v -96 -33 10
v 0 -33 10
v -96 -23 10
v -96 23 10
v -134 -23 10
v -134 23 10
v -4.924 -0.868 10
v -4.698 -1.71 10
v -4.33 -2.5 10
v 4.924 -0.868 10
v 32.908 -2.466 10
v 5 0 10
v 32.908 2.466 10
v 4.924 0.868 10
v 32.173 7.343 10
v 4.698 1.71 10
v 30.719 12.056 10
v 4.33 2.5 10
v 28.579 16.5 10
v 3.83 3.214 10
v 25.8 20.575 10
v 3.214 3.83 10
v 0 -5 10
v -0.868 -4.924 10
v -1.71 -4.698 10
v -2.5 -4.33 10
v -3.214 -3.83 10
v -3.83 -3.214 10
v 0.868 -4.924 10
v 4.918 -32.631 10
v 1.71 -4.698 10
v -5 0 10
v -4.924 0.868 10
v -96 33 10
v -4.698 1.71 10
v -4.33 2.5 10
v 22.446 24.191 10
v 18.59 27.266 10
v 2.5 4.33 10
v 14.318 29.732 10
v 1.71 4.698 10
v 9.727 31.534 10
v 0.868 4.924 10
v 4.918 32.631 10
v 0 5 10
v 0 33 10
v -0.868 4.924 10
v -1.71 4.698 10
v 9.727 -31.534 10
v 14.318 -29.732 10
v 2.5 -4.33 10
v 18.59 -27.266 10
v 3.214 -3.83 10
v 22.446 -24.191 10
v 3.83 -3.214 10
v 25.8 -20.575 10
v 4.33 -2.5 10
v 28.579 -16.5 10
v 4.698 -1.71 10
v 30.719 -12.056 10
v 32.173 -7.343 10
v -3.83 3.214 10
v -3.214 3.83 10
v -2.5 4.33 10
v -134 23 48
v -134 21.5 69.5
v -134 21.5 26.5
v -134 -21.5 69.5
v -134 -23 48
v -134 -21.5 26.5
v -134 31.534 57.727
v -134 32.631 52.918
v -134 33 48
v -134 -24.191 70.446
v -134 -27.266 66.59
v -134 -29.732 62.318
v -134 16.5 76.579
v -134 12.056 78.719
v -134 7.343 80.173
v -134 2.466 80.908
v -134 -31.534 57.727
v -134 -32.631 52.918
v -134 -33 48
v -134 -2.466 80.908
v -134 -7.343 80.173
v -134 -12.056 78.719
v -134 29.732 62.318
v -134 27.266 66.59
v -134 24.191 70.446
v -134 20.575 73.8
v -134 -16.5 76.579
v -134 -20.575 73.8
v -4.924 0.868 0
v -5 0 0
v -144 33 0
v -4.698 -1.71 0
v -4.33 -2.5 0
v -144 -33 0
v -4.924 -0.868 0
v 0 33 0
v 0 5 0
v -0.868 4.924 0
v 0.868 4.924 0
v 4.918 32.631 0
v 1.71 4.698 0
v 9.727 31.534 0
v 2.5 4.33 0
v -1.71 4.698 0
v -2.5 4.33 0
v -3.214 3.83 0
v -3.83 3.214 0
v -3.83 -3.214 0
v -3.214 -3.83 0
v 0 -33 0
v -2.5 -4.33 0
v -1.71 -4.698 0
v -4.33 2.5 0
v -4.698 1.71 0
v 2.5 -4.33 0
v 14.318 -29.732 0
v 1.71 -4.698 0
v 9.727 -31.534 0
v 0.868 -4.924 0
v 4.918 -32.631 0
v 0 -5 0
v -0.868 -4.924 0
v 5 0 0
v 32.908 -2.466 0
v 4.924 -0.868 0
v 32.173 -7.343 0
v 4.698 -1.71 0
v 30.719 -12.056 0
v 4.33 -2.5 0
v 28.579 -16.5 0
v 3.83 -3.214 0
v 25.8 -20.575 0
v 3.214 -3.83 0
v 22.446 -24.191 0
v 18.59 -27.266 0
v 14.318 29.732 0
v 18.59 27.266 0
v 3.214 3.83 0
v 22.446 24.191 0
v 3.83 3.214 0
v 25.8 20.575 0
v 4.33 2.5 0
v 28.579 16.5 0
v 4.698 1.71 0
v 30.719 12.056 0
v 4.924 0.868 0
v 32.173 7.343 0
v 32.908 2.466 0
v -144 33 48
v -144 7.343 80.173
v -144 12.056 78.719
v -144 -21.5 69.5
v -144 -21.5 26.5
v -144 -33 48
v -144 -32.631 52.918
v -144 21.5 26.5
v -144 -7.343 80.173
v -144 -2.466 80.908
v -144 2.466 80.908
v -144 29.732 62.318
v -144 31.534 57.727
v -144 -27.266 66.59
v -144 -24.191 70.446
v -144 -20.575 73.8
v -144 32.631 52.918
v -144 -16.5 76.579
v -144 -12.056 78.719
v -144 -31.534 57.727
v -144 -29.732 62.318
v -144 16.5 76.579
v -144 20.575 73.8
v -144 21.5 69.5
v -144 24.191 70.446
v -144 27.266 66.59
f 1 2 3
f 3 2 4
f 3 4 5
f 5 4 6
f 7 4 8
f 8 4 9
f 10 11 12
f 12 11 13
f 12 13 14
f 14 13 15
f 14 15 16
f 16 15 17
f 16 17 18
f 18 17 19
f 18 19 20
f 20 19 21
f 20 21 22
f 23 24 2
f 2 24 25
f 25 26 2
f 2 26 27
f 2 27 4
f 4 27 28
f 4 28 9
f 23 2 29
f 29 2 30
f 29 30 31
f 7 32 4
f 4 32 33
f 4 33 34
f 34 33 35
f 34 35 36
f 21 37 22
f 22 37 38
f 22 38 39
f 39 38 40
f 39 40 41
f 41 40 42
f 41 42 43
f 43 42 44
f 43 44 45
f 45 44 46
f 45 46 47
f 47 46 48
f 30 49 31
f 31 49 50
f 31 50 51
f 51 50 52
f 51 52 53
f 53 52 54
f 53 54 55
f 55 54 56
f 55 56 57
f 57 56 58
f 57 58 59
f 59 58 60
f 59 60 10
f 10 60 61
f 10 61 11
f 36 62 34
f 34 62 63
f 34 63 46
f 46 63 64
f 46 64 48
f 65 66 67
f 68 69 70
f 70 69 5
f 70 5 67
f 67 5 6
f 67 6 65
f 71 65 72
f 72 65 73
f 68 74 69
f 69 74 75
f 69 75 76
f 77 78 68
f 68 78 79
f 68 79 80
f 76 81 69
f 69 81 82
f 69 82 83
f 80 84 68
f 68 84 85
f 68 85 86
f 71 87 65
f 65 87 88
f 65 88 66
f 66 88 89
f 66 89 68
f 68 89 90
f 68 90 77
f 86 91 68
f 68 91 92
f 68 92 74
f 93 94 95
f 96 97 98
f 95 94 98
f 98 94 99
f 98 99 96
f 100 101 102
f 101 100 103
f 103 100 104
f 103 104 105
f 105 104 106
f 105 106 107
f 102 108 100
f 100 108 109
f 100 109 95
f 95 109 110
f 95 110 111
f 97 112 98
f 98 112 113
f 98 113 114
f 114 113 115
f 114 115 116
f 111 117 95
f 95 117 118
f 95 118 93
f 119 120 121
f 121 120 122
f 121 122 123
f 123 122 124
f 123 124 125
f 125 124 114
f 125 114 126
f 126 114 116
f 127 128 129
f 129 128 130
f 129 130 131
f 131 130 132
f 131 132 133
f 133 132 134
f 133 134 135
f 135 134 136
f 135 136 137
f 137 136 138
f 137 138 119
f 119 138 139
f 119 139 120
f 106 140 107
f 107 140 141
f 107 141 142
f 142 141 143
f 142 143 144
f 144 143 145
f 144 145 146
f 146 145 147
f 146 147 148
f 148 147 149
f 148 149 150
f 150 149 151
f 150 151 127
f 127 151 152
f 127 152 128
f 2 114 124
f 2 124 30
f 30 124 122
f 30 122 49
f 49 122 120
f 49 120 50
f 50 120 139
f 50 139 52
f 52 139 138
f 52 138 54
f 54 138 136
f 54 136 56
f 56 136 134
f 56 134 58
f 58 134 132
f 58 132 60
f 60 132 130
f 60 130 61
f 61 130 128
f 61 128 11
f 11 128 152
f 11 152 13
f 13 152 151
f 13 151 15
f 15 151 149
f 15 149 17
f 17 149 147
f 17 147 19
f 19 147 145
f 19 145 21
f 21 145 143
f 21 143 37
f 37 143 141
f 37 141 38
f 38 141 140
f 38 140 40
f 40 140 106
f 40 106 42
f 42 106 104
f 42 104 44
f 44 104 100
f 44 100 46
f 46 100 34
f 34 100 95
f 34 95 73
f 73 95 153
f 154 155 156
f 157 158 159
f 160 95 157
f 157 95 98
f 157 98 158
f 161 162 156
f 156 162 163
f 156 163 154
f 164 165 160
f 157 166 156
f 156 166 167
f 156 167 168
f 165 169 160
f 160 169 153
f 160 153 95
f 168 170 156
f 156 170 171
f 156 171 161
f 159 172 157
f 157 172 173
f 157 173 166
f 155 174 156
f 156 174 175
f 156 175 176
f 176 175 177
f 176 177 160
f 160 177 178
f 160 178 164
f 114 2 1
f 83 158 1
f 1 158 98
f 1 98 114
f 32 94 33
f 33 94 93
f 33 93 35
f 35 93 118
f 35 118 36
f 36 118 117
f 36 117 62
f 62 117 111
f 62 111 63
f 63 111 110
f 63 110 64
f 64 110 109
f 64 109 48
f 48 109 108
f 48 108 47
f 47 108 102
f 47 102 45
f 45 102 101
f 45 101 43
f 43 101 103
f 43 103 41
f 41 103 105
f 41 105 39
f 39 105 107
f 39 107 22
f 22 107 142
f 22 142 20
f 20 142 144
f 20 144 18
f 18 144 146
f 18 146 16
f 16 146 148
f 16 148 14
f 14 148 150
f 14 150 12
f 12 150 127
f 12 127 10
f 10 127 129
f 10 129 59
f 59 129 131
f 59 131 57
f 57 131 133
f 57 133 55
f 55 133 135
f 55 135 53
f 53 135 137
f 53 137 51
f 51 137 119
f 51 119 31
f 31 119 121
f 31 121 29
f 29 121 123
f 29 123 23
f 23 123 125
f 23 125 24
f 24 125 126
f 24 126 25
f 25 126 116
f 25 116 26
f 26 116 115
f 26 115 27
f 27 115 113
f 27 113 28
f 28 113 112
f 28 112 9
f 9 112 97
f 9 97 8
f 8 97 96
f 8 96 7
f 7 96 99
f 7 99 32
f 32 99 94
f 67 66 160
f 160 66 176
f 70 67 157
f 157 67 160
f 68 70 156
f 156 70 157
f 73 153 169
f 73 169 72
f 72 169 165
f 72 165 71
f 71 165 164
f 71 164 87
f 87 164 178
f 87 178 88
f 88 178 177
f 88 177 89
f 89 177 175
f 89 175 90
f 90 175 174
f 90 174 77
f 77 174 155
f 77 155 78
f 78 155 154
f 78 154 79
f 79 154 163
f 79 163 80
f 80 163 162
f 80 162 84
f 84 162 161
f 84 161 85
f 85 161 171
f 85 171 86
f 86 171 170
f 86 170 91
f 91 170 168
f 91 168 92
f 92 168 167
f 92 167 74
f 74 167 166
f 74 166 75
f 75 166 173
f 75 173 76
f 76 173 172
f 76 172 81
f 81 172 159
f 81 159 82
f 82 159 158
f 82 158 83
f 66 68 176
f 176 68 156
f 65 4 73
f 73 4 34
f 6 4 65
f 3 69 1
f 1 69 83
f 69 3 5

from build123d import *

# Parameters (mm, degrees)
SKETCH1_R           = 5
BOSS_EXTRUDE1_DEPTH = 10
SKETCH3_W           = 43
SKETCH3_H           = 43
BOSS_EXTRUDE3_DEPTH = 10
BOSS_EXTRUDE4_DEPTH = 10


with BuildPart() as part:
    # Sketch1 → Boss-Extrude1 (new body)
    with BuildSketch(Plane.XY):
        with BuildLine():
            Line((0, 33), (-144, 33))
            Line((-144, 33), (-144, -33))
            Line((-144, -33), (0, -33))
            ThreePointArc((0, -33), (33, 0), (0, 33))
        make_face()
        Circle(SKETCH1_R, mode=Mode.SUBTRACT)
    extrude(amount=BOSS_EXTRUDE1_DEPTH)

    # Sketch3 → Boss-Extrude3 (add)
    with BuildSketch(Plane.ZY.offset(144)):
        with BuildLine():
            Line((48, 33), (10, 33))
            Line((10, 33), (10, -33))
            Line((10, -33), (48, -33))
            ThreePointArc((48, -33), (81, 0), (48, 33))
        make_face()
        with Locations((48, 0)):
            Rectangle(SKETCH3_W, SKETCH3_H, mode=Mode.SUBTRACT)
    extrude(amount=-BOSS_EXTRUDE3_DEPTH)

    # Sketch4 → Boss-Extrude4 (add)
    with BuildSketch(Plane(origin=(0, 33, 0), x_dir=(1, 0, 0), z_dir=(0, 1, 0))):
        Polygon((-134, -48), (-96, -10), (-134, -10), align=None)
    boss_extrude4 = extrude(amount=-BOSS_EXTRUDE4_DEPTH)

    # Mirror1: Boss-Extrude4 across plane
    add(boss_extrude4.mirror(Plane.ZX))


solid = part.part
